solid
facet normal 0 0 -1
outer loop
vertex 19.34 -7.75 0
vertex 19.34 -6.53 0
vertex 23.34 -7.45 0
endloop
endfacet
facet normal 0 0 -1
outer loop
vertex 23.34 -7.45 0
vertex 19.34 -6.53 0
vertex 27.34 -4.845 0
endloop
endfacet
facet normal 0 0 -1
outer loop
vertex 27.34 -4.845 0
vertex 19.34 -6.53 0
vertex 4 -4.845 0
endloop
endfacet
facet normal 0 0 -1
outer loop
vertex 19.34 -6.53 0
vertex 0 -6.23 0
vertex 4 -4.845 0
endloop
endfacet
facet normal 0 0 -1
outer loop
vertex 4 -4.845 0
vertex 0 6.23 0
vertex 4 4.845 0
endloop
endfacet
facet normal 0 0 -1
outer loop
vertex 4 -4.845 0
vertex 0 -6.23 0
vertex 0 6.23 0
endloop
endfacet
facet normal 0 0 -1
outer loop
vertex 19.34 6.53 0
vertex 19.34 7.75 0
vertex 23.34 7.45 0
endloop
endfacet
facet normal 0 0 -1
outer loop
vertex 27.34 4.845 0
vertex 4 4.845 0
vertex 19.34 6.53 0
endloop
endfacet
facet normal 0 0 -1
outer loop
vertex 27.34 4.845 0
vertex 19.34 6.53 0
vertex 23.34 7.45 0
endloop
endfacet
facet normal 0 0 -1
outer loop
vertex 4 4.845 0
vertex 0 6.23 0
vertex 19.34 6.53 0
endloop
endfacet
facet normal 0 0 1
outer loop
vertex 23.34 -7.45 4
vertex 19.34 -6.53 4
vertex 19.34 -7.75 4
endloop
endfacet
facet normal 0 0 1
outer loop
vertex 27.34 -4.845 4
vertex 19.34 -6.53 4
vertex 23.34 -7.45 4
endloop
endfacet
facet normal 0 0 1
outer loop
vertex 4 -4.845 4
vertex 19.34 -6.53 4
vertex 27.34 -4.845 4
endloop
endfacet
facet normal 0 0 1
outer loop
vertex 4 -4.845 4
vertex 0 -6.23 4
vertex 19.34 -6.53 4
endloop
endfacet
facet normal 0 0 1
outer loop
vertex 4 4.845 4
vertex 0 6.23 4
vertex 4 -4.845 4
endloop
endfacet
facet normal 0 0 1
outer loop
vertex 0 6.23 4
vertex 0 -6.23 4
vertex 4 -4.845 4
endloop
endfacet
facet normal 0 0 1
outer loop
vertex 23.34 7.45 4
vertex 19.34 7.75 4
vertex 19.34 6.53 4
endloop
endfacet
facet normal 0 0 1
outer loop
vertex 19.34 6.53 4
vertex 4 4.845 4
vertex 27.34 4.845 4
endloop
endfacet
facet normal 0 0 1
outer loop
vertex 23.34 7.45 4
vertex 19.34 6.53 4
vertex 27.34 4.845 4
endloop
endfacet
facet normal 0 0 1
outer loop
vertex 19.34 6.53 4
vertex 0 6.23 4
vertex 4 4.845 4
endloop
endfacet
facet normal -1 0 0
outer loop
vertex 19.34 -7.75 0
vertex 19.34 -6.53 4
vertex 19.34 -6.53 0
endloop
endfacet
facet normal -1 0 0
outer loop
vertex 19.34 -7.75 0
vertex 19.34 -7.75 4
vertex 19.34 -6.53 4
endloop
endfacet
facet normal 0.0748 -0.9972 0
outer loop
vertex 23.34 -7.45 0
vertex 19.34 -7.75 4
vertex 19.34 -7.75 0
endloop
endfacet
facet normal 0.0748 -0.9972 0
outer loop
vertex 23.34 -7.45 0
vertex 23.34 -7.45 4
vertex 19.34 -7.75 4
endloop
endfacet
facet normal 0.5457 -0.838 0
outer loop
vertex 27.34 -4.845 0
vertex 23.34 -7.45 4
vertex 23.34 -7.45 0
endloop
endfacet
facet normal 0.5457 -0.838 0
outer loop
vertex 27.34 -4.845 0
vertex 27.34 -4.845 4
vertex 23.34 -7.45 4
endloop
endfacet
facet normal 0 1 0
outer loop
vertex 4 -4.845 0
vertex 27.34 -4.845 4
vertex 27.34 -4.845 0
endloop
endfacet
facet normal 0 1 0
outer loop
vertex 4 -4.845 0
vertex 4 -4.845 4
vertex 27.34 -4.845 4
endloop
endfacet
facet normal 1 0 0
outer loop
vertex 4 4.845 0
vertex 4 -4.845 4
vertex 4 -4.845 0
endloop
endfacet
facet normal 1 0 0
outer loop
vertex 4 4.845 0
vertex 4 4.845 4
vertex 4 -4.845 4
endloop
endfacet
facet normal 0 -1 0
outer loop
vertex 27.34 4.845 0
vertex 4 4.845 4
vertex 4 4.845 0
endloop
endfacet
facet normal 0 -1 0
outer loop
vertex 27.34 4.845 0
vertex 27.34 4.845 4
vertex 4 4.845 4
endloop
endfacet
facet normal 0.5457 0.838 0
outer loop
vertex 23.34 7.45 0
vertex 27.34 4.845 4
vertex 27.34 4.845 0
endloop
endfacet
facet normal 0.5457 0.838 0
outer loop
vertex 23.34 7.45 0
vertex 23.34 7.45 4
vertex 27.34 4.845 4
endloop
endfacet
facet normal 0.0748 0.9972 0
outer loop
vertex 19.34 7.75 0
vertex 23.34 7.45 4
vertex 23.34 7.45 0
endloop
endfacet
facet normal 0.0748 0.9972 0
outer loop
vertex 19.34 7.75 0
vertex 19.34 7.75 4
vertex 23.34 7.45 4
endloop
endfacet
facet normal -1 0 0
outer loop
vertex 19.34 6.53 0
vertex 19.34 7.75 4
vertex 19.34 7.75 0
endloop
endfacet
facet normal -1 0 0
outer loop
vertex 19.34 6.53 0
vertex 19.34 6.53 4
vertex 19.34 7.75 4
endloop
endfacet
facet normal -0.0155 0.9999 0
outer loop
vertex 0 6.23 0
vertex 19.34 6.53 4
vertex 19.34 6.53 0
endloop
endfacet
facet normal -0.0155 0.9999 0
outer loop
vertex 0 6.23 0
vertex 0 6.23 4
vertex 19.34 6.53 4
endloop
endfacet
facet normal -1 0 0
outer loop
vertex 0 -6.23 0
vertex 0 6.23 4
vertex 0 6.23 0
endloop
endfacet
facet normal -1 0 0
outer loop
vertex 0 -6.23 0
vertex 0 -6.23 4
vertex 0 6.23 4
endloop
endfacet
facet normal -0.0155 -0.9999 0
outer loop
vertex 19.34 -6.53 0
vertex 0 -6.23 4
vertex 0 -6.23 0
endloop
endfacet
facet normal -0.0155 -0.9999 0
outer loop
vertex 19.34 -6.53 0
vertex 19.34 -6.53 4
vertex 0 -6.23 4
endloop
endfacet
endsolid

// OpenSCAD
wheel_width = 17.60;

wheel_lip_width = 11.74;
wheel_inner_diameter = 13.06;
wheel_lip_diameter = 14.90;

wheel_outer_diameter = 17.89;
wheel_outer_lip_diameter = 23;
wheel_track_width = 9.15;


clip_width = 9.69; // width at base of clip
base_width = 3.3;

thickness = 4;
tol = 0.3;


linear_extrude(thickness)
for (i = [0, 180]) {
  
rotate([i])
polygon(points=[
  [0,0],
  [0,wheel_inner_diameter/2-tol],
  [base_width+wheel_lip_width+thickness+tol, wheel_inner_diameter/2],
  [base_width+wheel_lip_width+thickness+tol, wheel_lip_diameter/2+tol],
    [base_width+wheel_lip_width+thickness*2+tol, wheel_lip_diameter/2],

  [base_width+wheel_lip_width+thickness*3+tol, clip_width/2],
  [thickness, clip_width/2],
  [thickness, 0],
]);
  
}
